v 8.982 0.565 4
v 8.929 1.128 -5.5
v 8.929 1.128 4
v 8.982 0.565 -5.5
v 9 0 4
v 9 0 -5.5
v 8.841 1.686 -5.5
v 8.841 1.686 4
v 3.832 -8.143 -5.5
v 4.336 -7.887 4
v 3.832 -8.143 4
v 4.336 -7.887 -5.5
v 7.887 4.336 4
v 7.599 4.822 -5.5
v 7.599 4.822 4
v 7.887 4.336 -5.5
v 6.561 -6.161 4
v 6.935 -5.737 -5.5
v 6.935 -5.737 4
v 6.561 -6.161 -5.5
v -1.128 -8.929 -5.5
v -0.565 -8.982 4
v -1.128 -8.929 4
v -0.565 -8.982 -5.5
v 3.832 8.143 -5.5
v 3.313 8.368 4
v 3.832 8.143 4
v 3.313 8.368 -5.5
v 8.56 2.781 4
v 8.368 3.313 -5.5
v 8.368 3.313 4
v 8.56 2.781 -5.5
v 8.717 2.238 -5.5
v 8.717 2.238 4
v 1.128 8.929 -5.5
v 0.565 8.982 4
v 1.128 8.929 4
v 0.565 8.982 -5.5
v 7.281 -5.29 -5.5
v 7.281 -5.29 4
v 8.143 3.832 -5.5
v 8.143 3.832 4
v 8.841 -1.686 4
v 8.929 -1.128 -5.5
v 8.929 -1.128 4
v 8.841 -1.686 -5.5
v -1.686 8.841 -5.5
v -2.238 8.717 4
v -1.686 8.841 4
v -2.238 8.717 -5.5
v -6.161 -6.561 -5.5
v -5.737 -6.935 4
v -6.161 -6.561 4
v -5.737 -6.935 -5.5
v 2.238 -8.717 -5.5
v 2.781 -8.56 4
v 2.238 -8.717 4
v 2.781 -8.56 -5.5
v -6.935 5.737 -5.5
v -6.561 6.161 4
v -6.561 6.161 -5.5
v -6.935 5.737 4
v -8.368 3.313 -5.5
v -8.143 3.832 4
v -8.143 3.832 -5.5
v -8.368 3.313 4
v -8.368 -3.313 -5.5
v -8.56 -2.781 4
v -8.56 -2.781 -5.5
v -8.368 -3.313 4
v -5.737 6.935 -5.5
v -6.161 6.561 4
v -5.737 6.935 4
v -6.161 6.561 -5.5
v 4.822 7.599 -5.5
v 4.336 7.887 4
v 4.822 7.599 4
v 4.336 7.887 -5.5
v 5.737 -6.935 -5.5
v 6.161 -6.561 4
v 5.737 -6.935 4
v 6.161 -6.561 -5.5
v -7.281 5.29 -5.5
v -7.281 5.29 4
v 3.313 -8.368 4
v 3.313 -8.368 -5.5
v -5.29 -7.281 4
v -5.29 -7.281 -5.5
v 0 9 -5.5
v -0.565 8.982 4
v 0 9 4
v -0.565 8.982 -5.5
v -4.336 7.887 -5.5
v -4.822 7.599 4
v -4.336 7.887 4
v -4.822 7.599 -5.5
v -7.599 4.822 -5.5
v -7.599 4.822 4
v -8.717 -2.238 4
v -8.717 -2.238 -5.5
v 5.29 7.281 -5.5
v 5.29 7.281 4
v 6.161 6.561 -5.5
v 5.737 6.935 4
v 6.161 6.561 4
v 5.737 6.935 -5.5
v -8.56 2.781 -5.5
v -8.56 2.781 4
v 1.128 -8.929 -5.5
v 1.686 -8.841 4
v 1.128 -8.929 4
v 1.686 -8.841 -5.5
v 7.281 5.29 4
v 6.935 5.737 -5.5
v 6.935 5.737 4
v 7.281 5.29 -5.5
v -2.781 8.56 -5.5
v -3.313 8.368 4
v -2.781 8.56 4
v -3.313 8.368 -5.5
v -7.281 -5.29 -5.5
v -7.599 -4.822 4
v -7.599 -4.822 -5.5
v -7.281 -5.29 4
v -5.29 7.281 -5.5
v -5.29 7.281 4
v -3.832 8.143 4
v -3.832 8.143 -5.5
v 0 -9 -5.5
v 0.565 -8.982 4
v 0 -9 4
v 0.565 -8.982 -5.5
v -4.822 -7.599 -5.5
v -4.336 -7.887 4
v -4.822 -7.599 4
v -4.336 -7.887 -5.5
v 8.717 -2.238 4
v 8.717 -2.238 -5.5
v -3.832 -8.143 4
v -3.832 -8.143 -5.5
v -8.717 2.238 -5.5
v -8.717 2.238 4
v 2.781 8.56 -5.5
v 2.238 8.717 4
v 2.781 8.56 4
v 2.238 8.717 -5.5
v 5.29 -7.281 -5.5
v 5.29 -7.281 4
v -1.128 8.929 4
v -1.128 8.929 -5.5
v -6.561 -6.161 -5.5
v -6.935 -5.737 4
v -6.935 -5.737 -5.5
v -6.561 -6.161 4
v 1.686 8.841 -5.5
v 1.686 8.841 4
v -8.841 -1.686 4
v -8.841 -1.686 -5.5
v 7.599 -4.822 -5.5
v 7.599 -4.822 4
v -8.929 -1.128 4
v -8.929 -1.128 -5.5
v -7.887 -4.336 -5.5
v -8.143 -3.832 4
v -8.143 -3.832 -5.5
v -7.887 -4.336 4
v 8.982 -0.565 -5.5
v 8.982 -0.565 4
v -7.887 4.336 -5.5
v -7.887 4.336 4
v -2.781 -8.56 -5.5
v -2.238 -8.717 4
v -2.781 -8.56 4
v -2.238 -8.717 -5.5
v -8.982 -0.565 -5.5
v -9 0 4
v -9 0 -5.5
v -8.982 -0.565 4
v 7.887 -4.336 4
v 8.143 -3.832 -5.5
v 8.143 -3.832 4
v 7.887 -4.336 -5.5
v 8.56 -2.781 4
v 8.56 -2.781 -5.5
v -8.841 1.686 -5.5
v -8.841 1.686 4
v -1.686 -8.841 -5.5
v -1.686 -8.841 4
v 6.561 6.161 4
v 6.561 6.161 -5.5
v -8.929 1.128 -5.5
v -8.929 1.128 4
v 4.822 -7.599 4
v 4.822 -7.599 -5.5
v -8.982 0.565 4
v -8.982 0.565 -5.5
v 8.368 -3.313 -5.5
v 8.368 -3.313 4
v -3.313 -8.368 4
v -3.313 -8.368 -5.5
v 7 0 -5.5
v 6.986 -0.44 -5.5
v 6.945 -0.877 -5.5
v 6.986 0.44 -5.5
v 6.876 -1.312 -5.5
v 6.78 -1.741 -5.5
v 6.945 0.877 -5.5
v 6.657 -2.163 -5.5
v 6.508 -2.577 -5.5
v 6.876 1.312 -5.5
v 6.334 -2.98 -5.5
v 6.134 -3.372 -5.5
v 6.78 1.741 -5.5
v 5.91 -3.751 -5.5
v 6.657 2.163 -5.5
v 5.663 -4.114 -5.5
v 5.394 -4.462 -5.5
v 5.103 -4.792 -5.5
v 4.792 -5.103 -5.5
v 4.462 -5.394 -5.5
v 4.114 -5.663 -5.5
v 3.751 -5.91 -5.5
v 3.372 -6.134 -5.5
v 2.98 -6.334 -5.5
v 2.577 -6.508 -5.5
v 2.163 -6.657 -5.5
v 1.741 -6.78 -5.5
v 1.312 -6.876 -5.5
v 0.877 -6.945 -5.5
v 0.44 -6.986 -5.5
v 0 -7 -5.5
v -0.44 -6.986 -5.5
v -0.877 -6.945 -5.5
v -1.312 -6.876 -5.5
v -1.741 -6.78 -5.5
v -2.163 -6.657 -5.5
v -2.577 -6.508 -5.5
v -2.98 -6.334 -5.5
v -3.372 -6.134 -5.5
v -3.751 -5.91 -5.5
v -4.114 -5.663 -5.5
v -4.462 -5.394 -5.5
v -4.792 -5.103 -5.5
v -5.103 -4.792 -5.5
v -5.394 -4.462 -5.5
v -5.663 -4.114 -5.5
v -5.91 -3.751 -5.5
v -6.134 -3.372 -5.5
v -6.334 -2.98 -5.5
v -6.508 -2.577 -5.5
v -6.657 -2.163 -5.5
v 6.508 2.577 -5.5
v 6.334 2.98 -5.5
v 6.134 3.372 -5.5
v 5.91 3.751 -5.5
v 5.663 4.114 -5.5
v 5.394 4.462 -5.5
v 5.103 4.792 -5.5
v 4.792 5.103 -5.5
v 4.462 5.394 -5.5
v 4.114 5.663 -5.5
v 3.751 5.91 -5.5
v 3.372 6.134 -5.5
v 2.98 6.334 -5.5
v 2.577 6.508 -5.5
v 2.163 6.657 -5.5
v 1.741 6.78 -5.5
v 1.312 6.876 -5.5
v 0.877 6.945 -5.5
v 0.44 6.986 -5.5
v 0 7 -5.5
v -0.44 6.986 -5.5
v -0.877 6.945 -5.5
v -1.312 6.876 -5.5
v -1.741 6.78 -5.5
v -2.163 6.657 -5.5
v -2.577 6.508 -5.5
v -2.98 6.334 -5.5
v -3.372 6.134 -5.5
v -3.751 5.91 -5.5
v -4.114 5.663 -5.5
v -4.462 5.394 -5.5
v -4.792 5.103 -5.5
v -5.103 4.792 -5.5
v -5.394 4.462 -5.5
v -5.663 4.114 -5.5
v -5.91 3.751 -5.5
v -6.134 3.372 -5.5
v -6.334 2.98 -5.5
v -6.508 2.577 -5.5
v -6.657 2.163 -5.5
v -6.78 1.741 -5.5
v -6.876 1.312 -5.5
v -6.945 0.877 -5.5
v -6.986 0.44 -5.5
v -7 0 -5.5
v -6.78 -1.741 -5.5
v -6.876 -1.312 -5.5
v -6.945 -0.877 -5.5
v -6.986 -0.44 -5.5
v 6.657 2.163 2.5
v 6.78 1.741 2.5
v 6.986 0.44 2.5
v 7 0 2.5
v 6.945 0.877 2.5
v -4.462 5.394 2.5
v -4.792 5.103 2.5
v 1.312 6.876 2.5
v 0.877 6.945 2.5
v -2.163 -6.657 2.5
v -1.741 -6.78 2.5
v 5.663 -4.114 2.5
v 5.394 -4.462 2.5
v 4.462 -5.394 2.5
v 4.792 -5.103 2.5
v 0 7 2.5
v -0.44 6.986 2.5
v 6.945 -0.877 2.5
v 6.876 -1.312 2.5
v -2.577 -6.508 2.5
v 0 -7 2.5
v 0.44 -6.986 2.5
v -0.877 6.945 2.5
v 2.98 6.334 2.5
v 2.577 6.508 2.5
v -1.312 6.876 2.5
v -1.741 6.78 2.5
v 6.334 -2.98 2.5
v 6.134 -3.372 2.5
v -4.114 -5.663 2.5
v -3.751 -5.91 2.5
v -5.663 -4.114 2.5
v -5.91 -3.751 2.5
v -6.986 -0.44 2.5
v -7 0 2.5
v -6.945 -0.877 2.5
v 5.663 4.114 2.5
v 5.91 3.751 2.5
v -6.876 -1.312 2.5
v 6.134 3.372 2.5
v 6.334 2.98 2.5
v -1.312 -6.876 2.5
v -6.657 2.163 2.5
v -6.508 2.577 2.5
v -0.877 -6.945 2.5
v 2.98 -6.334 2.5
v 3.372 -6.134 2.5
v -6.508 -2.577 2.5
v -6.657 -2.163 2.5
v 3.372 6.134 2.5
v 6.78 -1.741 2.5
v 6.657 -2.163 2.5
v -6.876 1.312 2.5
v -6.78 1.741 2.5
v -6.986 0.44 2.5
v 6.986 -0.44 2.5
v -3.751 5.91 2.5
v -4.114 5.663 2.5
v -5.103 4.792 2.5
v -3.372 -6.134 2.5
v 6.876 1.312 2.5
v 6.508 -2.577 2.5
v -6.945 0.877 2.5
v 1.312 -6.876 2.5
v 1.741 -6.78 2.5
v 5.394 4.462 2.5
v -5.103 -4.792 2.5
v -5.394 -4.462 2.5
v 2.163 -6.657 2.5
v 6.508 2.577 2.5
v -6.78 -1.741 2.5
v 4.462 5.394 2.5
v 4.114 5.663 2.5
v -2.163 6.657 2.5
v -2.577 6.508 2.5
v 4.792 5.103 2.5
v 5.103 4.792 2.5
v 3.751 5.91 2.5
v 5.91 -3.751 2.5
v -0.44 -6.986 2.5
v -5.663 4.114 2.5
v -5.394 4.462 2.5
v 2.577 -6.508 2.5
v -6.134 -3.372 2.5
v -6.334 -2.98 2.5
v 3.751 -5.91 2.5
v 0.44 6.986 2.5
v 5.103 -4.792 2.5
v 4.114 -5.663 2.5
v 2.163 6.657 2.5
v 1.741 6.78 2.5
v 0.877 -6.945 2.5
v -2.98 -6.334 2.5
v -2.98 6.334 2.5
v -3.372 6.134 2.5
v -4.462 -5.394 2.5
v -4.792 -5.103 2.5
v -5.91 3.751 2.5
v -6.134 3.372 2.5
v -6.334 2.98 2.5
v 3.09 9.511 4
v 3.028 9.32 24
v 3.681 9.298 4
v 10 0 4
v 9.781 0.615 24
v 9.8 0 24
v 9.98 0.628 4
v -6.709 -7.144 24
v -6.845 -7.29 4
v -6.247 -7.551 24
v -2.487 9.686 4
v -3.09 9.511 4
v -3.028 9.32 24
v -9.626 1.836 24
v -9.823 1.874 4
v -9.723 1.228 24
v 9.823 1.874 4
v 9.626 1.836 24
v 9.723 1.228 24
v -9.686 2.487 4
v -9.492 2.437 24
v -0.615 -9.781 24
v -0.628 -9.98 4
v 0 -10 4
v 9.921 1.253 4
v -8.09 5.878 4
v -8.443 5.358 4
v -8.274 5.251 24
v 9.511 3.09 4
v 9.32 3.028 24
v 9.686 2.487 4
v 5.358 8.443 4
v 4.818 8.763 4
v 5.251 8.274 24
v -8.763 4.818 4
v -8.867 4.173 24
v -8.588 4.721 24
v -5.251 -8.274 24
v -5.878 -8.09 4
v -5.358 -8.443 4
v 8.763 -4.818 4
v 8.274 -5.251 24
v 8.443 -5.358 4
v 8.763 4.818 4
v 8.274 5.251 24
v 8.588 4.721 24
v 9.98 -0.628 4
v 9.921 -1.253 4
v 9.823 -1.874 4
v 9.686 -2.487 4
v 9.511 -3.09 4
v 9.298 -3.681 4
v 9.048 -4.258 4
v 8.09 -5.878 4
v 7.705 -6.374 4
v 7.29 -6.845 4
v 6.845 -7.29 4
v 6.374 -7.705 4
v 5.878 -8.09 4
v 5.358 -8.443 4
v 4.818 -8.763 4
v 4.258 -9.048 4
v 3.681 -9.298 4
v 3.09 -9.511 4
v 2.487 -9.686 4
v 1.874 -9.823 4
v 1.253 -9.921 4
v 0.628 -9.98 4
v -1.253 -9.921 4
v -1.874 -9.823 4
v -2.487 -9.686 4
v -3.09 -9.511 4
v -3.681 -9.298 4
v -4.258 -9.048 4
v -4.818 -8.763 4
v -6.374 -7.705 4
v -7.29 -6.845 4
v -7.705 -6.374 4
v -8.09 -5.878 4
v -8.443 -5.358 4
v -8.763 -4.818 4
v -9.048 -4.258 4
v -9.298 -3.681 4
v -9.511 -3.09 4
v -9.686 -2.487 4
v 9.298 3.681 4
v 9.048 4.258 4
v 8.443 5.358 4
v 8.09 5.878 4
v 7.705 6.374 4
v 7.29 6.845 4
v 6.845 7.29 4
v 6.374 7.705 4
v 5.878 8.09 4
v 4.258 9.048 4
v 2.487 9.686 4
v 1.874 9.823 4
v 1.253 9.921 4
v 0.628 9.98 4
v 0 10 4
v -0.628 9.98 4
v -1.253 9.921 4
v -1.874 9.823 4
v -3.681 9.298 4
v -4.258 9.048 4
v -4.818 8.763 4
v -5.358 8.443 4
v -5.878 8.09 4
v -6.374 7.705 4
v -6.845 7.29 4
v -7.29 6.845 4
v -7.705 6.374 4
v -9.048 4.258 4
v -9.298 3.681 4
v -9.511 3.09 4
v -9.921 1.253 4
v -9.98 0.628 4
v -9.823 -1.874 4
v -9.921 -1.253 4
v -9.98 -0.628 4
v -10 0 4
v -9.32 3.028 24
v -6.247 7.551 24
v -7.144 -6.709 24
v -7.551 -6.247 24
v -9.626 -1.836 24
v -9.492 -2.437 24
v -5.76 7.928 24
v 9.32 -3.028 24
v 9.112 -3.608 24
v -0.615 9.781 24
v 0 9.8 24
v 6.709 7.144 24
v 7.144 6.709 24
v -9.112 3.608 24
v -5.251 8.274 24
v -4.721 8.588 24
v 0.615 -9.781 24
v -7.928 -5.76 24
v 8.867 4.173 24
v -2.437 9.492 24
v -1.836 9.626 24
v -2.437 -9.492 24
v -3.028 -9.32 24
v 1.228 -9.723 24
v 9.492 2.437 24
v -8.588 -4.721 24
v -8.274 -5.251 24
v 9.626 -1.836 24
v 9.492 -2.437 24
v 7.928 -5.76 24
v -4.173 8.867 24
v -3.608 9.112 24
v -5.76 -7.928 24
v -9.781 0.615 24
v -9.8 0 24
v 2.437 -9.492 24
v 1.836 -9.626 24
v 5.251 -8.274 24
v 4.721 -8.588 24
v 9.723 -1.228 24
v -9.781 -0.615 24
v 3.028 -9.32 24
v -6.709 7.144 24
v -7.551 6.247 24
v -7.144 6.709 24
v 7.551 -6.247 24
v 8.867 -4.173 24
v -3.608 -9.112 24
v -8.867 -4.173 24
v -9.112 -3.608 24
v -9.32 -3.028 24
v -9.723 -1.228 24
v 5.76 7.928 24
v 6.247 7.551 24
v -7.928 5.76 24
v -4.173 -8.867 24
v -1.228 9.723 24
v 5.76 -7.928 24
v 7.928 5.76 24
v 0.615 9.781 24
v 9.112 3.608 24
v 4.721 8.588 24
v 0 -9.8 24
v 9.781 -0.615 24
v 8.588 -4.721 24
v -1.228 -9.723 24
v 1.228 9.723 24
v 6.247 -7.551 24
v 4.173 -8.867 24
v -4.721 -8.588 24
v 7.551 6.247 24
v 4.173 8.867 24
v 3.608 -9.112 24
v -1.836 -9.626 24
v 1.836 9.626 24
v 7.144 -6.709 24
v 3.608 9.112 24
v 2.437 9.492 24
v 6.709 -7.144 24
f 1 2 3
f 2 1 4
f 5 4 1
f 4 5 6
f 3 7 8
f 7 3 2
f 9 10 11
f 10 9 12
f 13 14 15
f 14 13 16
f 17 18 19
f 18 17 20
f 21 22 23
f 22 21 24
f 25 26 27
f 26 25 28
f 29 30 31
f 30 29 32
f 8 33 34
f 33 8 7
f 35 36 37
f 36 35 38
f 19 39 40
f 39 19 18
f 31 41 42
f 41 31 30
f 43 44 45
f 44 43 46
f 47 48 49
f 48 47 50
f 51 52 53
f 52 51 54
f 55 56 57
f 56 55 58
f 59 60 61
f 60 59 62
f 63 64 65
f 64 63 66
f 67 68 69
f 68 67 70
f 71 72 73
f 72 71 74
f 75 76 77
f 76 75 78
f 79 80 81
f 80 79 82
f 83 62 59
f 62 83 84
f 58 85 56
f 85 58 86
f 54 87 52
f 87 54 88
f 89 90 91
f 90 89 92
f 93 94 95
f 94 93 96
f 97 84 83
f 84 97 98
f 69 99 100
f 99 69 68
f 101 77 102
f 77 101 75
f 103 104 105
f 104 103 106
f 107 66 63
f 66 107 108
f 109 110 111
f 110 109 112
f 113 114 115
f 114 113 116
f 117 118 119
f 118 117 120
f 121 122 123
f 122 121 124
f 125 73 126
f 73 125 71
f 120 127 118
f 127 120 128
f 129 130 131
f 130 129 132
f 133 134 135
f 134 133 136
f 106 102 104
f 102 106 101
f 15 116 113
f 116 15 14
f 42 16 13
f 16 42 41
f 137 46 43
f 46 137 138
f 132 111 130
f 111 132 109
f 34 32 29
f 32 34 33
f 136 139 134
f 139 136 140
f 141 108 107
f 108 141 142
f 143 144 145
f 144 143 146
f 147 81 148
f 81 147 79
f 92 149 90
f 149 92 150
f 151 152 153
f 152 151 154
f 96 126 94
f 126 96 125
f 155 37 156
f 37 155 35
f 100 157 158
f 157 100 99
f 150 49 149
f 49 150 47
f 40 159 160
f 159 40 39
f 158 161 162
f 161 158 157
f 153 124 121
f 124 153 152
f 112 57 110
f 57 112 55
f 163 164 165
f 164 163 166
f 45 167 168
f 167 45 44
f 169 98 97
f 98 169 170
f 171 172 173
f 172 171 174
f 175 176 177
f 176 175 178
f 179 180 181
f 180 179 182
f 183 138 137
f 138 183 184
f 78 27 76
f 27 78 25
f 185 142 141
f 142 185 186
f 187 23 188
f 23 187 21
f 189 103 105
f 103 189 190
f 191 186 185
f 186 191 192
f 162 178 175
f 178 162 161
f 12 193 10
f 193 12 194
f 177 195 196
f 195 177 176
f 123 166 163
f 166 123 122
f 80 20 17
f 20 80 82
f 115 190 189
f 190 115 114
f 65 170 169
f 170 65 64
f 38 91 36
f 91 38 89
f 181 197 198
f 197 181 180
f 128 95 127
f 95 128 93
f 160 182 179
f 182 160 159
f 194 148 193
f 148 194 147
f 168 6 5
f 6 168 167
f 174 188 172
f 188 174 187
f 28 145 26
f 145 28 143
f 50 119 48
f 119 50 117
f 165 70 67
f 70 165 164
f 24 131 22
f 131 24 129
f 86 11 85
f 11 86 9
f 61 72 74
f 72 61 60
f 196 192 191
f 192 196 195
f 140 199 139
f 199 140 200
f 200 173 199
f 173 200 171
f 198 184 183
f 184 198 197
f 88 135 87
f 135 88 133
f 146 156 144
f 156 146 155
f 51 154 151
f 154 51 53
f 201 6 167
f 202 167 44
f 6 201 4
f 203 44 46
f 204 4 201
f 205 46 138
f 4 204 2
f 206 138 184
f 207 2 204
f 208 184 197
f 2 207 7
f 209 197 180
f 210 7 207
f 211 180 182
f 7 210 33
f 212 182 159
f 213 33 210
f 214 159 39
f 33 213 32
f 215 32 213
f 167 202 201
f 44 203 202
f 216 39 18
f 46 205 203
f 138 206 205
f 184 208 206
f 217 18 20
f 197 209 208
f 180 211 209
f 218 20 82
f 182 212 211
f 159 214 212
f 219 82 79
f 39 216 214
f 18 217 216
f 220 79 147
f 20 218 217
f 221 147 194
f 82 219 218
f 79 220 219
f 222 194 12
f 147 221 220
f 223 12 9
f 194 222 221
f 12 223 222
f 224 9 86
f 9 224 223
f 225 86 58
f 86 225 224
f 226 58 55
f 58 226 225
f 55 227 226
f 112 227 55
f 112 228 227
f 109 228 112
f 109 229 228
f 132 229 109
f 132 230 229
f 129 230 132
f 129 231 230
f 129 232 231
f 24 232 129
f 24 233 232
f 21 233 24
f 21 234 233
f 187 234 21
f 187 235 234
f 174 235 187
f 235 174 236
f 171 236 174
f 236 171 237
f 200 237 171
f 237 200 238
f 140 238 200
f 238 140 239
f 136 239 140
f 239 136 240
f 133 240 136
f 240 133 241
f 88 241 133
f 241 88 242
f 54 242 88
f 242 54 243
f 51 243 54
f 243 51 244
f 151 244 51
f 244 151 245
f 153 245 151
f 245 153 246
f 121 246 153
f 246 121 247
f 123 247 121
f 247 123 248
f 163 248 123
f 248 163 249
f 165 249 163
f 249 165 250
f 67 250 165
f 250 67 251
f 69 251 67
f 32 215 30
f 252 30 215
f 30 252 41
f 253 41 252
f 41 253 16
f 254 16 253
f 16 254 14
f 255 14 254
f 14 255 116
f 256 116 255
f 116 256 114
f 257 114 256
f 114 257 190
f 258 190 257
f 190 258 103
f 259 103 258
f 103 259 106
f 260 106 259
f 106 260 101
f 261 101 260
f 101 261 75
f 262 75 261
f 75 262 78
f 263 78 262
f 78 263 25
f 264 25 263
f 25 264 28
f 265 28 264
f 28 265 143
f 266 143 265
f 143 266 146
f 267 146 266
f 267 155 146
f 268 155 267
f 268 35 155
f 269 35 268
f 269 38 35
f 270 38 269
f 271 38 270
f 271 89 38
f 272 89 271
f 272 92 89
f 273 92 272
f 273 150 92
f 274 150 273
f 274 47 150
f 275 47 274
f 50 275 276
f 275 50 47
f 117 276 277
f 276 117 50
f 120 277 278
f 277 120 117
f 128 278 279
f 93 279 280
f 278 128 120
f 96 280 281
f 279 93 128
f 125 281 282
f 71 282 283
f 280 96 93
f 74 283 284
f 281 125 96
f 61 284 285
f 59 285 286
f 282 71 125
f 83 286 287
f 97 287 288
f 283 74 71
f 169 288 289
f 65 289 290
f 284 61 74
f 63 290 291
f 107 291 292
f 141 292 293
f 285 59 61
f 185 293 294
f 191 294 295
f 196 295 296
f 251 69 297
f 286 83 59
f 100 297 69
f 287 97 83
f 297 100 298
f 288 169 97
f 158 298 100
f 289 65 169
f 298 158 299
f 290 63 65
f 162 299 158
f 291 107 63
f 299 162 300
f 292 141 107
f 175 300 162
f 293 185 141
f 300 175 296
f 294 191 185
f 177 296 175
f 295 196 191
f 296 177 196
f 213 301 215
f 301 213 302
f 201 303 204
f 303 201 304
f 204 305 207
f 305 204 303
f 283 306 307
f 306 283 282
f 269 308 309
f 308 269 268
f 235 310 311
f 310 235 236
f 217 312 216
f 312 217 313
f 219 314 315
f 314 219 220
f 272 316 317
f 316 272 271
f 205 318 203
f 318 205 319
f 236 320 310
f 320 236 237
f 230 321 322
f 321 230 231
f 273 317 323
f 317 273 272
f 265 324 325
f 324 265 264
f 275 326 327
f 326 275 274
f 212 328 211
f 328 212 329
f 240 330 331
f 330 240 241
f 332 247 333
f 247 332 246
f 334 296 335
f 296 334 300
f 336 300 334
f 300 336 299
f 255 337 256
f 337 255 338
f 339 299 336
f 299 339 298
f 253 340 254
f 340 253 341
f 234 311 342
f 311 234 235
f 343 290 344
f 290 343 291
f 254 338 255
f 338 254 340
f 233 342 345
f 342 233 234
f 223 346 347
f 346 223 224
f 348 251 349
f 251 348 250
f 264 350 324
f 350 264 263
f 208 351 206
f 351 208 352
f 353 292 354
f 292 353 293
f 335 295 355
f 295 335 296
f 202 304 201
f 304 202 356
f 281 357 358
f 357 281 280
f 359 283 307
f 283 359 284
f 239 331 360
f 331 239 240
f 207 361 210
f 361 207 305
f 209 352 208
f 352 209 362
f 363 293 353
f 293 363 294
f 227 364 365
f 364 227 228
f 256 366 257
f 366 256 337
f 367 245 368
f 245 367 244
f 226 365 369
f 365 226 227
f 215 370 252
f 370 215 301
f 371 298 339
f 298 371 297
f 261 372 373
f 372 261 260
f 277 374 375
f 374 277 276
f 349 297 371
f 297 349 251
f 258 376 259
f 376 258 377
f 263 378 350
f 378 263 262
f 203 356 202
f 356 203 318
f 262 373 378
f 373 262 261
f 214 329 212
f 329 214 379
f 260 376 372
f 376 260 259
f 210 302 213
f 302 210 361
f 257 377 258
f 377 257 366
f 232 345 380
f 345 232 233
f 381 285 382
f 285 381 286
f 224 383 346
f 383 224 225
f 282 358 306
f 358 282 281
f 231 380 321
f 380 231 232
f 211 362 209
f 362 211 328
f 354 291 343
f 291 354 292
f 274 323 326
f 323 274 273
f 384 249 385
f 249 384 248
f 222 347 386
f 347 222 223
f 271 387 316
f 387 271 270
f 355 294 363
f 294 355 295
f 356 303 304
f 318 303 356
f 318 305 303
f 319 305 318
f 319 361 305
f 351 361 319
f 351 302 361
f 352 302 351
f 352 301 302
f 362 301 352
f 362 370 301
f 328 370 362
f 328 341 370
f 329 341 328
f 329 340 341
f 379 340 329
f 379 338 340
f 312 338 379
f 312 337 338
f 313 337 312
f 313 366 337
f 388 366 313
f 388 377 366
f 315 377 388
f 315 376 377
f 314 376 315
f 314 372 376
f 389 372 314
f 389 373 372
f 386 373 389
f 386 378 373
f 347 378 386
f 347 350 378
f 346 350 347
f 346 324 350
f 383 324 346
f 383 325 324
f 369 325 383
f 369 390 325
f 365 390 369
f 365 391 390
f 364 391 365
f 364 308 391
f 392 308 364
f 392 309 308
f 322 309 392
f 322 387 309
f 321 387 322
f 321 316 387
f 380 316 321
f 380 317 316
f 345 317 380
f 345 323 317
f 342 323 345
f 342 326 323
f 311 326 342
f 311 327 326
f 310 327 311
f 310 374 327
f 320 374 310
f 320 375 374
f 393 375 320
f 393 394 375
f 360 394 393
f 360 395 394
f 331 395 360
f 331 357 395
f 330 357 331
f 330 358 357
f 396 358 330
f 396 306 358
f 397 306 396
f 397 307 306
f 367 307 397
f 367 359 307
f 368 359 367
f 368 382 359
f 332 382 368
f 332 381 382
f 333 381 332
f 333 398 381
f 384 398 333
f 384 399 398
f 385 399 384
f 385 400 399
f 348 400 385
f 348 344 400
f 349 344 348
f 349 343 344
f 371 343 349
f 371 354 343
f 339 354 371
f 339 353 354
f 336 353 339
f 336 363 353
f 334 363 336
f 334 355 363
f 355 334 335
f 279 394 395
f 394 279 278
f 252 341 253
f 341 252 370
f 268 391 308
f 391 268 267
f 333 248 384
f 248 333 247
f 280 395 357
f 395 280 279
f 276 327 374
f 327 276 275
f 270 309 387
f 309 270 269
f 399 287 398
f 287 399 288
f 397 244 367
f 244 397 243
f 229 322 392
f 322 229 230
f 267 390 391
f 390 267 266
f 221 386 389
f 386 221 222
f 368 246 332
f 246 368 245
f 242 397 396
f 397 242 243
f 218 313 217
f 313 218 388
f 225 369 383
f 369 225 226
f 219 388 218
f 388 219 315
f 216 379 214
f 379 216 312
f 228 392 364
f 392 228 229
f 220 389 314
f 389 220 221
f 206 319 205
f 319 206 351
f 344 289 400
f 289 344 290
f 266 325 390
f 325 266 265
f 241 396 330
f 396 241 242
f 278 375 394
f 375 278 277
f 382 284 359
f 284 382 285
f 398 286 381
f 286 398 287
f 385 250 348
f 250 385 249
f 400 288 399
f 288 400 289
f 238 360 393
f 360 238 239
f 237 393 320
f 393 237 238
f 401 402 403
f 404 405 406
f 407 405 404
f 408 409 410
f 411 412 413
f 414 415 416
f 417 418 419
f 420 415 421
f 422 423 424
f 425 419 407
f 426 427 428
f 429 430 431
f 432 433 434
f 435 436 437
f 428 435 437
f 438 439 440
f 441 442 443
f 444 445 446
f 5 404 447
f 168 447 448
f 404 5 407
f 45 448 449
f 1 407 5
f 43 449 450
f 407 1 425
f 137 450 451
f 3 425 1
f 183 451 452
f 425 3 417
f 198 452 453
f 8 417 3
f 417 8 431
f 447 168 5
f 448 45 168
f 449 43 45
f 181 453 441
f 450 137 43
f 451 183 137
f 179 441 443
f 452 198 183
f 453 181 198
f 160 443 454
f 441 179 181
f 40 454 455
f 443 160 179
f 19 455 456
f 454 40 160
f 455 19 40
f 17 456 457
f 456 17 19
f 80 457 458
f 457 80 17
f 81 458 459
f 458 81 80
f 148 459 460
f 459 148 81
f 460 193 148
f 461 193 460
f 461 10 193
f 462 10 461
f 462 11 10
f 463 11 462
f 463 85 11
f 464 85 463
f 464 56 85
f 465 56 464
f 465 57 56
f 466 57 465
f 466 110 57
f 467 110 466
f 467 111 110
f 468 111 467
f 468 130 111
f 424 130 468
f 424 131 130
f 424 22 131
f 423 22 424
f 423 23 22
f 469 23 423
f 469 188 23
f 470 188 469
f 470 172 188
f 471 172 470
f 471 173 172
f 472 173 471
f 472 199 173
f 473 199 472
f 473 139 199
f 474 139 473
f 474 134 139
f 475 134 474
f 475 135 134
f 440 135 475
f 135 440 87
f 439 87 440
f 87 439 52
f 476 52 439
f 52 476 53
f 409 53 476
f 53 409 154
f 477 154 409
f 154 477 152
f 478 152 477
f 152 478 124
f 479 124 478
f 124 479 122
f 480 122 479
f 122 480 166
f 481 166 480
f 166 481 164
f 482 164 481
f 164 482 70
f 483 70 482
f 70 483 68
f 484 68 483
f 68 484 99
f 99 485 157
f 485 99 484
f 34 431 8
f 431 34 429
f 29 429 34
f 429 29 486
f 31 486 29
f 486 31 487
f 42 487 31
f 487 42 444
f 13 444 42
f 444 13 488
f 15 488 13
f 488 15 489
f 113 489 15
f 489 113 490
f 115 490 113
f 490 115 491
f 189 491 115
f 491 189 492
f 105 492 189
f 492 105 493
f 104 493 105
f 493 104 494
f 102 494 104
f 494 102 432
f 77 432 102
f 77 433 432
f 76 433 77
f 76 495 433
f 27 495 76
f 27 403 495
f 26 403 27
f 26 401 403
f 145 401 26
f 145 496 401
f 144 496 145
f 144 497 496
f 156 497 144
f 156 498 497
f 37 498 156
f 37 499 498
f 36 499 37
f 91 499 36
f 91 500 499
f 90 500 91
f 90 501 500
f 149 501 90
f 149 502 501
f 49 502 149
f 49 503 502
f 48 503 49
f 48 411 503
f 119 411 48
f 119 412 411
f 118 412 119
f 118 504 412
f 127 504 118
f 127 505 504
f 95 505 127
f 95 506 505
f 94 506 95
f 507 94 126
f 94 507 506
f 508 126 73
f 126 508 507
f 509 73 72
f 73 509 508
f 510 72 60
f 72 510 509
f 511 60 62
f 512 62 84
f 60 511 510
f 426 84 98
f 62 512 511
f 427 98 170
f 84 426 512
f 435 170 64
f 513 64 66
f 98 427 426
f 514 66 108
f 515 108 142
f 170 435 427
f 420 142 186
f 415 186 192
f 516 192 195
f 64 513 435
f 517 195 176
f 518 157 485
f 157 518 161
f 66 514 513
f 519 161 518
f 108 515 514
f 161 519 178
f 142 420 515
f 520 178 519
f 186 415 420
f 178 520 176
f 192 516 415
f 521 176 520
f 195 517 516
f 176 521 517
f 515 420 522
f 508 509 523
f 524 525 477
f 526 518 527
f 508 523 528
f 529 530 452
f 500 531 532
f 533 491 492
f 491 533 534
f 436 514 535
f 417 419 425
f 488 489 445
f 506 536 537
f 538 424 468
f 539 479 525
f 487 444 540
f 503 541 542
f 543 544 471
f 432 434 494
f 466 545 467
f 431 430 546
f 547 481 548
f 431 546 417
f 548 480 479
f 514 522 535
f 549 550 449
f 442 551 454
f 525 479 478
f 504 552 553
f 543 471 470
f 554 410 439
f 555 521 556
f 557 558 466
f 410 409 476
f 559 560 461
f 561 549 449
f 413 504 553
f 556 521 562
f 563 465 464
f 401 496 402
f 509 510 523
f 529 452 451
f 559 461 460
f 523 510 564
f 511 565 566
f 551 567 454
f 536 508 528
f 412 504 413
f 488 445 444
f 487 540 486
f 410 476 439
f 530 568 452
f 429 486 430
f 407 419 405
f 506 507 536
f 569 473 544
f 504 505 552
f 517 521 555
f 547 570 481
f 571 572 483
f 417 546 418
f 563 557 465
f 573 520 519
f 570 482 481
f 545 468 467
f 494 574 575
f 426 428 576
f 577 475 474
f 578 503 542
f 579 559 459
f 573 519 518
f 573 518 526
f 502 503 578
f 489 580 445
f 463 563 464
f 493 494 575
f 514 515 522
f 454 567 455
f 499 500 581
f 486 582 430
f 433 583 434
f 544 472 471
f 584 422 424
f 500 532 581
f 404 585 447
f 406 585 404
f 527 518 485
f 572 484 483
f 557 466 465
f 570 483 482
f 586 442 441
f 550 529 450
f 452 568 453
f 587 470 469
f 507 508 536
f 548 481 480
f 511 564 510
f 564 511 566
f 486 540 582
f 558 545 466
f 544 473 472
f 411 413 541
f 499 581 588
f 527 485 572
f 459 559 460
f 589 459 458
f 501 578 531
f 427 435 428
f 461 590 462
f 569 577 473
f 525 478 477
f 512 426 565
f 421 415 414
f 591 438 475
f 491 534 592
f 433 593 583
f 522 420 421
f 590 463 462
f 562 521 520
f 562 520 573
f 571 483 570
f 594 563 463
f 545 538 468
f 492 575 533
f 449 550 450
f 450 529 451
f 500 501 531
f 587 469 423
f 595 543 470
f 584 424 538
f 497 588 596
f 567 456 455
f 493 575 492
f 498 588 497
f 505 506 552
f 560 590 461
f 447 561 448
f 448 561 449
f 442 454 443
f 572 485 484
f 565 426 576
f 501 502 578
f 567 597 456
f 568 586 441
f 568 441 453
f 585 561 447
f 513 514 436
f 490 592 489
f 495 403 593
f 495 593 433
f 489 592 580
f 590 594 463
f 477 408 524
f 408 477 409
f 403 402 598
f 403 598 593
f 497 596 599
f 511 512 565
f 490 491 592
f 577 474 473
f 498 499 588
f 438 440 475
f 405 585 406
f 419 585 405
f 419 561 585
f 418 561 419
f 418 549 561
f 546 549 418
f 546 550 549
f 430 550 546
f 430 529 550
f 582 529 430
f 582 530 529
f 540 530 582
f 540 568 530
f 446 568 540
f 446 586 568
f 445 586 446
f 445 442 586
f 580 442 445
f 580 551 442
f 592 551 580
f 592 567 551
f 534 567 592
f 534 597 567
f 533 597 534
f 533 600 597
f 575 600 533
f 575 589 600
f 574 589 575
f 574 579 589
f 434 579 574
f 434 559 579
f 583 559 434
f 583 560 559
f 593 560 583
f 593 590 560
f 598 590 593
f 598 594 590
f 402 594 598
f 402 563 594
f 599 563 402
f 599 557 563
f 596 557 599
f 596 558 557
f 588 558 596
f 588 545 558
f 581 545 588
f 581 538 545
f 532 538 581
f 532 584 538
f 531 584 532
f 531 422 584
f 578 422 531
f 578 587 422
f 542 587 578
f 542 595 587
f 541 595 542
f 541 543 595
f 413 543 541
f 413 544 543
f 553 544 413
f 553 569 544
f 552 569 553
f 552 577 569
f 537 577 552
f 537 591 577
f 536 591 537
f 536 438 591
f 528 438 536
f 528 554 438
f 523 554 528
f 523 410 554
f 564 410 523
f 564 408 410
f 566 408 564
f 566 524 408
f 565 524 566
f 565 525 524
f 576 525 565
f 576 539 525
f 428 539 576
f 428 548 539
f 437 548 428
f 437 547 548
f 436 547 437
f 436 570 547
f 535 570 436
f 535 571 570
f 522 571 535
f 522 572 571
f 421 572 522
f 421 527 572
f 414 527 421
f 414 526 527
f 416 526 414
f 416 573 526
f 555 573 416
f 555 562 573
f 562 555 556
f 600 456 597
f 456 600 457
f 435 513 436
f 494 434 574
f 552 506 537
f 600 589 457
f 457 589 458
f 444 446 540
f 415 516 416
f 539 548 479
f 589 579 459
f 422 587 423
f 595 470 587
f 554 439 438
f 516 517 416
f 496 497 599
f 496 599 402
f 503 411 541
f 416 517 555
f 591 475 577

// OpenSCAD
// Parameters for the components
$fn = 100; // Smoothing parameter for rounded shapes

// 1. Solid Cylinder
module solid_cylinder() {
    union() {
        // Adjusted taper to be more subtle and increased base width
        cylinder(h = 20, r1 = 10, r2 = 9.8, center = true); 
    }
}

// 2. Hollow Cylinder
module hollow_cylinder() {
    difference() {
        // Adjusted base cylinder dimensions and hollow section
        cylinder(h = 10, r = 9, center = true);
        
        // Enlarged recessed hollow area to match the original model
        translate([0, 0, -4]) 
            cylinder(h = 14, r = 7, center = true); 
    }
}

// Assemble the model layers
module model() {
    // Layer 1: Adjusted position of Solid Cylinder (lowered slightly)
    translate([0, 0, 14]) 
        solid_cylinder();
    
    // Layer 2: Adjusted position of Hollow Cylinder (raised slightly for better separation)
    translate([0, 0, -0.5])
        hollow_cylinder();
}

// Render the final model
model();
